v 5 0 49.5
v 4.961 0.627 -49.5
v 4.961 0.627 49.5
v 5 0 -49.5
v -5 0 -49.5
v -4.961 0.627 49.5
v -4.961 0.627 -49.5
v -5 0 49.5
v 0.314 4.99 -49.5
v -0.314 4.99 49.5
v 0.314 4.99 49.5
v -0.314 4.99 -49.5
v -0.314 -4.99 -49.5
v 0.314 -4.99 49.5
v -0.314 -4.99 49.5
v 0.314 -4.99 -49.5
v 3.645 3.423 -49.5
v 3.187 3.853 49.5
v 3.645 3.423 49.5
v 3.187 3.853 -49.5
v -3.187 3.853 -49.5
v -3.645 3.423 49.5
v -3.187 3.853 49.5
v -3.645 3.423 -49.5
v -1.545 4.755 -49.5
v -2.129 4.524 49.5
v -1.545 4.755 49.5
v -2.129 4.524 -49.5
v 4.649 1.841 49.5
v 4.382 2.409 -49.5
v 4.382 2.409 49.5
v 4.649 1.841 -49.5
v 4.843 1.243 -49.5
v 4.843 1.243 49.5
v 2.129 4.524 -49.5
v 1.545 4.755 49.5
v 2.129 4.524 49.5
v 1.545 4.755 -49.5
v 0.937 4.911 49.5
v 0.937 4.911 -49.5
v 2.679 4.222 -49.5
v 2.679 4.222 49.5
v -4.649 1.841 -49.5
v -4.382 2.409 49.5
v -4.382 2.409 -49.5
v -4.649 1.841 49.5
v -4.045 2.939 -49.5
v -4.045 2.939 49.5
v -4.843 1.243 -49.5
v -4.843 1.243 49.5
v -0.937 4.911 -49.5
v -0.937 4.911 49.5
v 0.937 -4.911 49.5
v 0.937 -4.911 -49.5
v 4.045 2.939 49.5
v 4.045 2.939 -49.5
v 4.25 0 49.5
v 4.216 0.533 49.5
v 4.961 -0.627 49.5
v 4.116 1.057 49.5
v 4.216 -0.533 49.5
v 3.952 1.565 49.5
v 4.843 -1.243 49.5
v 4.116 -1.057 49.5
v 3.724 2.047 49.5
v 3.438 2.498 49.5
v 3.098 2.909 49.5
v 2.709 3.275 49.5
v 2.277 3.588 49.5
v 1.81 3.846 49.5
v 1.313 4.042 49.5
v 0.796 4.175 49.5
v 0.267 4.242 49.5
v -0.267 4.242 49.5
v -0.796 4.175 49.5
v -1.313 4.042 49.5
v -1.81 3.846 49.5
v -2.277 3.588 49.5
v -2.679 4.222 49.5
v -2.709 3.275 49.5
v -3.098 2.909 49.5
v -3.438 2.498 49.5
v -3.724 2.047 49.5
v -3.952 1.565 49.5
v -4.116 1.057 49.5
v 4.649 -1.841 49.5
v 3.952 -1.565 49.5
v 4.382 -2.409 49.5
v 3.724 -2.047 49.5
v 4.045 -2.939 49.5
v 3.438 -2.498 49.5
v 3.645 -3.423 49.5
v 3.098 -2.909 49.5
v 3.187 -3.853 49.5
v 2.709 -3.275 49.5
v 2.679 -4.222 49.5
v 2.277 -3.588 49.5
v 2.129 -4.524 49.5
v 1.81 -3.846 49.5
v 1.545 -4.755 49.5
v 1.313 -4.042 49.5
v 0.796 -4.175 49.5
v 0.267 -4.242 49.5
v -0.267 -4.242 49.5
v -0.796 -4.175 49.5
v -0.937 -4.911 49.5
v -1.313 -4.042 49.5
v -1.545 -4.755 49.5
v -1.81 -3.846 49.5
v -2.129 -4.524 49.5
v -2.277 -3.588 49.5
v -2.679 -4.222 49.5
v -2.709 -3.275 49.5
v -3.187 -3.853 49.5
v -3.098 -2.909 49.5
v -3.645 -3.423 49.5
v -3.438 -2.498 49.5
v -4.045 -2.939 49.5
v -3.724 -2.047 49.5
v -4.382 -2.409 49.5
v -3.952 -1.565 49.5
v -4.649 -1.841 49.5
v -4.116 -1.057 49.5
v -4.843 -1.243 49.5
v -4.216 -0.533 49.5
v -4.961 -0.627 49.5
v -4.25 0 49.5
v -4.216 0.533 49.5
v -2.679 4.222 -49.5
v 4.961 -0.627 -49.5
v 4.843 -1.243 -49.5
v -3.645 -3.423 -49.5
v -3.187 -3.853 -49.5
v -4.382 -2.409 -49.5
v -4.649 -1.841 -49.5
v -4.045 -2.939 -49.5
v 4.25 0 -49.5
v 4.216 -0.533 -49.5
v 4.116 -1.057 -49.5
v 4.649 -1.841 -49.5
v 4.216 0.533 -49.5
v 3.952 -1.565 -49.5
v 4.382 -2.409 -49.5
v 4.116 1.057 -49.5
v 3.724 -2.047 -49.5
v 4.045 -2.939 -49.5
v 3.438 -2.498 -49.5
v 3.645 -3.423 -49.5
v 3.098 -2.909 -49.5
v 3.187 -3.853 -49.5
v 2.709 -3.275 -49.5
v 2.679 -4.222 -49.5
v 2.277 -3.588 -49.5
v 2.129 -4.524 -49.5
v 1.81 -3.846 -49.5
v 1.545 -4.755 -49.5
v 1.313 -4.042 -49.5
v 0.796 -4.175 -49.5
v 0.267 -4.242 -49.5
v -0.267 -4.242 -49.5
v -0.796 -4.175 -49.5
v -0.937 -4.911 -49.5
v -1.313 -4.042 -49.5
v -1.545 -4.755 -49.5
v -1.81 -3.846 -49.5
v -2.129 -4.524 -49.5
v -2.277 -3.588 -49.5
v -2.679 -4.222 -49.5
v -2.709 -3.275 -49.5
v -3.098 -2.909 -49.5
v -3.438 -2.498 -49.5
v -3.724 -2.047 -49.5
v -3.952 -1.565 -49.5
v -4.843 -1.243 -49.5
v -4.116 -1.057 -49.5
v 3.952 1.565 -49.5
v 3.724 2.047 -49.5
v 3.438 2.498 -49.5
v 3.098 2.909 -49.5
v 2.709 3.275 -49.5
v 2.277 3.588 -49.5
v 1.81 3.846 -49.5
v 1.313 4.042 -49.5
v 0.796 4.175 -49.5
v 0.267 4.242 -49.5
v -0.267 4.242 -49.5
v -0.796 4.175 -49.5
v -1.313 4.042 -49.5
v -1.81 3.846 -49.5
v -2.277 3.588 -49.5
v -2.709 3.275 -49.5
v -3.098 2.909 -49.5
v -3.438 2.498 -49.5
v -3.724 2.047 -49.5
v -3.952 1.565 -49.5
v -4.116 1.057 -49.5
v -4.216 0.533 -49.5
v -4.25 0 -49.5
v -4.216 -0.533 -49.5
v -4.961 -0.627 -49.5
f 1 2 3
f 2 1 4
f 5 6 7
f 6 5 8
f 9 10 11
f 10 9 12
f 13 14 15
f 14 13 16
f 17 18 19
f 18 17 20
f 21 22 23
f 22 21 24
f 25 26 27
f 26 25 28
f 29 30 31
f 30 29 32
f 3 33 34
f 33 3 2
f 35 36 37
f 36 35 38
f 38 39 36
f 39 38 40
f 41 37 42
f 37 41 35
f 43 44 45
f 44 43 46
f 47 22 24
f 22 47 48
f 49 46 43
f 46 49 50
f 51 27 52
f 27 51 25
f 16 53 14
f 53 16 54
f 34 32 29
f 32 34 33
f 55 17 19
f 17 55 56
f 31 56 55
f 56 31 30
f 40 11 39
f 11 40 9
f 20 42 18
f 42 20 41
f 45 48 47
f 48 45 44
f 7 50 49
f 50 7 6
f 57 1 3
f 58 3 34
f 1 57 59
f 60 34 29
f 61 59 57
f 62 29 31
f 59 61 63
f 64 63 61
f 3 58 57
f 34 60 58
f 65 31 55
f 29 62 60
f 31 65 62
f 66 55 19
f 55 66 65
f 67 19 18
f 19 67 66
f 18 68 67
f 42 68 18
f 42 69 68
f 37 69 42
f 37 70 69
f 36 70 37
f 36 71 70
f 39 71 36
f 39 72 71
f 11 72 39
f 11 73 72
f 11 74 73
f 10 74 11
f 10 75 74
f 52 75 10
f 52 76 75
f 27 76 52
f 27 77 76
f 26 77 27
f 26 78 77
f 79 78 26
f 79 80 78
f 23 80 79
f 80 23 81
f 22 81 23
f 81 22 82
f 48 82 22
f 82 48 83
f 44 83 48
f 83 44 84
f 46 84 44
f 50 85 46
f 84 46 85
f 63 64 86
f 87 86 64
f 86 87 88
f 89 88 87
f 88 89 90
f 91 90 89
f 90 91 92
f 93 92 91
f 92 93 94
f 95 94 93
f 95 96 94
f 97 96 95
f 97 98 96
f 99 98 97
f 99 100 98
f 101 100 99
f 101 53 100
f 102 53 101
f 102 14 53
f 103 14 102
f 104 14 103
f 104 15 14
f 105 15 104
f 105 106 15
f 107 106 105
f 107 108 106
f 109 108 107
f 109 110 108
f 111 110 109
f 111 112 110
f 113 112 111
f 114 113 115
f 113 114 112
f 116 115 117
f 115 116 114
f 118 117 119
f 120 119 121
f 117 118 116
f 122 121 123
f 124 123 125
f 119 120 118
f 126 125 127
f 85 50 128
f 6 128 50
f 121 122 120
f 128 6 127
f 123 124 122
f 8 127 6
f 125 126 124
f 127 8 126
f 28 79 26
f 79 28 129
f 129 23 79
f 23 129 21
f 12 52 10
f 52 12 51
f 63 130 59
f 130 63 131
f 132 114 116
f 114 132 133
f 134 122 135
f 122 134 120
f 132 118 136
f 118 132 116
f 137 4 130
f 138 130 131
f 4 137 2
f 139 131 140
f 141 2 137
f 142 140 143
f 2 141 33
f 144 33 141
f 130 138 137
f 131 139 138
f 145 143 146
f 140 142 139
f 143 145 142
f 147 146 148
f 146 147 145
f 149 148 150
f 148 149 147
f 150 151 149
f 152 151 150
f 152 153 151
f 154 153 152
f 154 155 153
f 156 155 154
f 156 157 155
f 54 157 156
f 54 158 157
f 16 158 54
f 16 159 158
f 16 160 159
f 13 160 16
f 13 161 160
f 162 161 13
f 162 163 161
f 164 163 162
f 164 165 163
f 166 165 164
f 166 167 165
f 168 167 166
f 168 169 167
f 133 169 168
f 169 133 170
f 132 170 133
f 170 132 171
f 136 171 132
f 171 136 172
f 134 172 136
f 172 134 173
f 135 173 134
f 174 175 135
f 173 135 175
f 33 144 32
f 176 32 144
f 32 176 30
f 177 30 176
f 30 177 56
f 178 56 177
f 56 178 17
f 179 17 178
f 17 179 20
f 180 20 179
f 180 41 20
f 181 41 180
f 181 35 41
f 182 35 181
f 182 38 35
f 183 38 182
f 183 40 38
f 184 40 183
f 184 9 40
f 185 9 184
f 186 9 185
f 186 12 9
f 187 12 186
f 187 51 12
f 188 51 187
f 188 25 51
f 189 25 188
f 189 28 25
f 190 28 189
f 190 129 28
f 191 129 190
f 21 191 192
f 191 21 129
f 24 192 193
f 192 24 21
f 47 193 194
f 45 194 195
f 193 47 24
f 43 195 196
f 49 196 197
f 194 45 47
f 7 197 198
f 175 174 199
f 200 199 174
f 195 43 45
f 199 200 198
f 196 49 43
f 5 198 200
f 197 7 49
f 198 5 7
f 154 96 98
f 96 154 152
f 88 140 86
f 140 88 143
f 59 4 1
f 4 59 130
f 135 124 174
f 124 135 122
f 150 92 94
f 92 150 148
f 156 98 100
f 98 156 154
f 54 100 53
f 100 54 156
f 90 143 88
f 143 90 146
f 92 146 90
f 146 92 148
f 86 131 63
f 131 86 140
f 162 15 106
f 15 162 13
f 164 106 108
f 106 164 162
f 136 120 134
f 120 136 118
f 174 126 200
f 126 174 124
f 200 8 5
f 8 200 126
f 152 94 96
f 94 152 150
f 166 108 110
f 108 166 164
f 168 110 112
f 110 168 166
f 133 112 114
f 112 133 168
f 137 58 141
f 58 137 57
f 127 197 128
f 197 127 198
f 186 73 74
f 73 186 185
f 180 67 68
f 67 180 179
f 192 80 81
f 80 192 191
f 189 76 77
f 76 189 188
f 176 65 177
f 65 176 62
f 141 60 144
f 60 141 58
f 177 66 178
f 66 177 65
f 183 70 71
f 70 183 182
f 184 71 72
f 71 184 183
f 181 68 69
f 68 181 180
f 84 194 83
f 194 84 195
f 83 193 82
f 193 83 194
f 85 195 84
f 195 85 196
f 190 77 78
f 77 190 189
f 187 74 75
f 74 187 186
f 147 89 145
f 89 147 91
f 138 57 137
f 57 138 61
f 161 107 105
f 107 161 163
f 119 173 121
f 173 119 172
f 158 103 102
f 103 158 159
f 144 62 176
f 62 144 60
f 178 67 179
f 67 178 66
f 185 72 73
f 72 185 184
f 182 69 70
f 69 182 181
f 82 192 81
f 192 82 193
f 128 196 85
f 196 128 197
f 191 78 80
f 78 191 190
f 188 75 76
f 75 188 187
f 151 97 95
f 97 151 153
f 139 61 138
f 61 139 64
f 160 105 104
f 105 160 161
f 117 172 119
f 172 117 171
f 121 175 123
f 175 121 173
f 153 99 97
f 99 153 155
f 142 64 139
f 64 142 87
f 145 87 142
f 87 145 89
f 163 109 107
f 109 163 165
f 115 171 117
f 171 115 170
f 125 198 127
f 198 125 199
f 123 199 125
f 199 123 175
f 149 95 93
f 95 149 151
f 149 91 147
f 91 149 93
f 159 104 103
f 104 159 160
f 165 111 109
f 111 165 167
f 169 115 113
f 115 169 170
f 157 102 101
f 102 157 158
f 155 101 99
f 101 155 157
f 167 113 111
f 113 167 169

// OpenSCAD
$fn = 50;


difference() {
	union() {
		translate(v = [0, 0, -49.5000000000]) {
			cylinder(h = 99, r = 5.0000000000);
		}
	}
	union() {
		translate(v = [0, 0, -100.0000000000]) {
			cylinder(h = 200, r = 4.2500000000);
		}
	}
}
